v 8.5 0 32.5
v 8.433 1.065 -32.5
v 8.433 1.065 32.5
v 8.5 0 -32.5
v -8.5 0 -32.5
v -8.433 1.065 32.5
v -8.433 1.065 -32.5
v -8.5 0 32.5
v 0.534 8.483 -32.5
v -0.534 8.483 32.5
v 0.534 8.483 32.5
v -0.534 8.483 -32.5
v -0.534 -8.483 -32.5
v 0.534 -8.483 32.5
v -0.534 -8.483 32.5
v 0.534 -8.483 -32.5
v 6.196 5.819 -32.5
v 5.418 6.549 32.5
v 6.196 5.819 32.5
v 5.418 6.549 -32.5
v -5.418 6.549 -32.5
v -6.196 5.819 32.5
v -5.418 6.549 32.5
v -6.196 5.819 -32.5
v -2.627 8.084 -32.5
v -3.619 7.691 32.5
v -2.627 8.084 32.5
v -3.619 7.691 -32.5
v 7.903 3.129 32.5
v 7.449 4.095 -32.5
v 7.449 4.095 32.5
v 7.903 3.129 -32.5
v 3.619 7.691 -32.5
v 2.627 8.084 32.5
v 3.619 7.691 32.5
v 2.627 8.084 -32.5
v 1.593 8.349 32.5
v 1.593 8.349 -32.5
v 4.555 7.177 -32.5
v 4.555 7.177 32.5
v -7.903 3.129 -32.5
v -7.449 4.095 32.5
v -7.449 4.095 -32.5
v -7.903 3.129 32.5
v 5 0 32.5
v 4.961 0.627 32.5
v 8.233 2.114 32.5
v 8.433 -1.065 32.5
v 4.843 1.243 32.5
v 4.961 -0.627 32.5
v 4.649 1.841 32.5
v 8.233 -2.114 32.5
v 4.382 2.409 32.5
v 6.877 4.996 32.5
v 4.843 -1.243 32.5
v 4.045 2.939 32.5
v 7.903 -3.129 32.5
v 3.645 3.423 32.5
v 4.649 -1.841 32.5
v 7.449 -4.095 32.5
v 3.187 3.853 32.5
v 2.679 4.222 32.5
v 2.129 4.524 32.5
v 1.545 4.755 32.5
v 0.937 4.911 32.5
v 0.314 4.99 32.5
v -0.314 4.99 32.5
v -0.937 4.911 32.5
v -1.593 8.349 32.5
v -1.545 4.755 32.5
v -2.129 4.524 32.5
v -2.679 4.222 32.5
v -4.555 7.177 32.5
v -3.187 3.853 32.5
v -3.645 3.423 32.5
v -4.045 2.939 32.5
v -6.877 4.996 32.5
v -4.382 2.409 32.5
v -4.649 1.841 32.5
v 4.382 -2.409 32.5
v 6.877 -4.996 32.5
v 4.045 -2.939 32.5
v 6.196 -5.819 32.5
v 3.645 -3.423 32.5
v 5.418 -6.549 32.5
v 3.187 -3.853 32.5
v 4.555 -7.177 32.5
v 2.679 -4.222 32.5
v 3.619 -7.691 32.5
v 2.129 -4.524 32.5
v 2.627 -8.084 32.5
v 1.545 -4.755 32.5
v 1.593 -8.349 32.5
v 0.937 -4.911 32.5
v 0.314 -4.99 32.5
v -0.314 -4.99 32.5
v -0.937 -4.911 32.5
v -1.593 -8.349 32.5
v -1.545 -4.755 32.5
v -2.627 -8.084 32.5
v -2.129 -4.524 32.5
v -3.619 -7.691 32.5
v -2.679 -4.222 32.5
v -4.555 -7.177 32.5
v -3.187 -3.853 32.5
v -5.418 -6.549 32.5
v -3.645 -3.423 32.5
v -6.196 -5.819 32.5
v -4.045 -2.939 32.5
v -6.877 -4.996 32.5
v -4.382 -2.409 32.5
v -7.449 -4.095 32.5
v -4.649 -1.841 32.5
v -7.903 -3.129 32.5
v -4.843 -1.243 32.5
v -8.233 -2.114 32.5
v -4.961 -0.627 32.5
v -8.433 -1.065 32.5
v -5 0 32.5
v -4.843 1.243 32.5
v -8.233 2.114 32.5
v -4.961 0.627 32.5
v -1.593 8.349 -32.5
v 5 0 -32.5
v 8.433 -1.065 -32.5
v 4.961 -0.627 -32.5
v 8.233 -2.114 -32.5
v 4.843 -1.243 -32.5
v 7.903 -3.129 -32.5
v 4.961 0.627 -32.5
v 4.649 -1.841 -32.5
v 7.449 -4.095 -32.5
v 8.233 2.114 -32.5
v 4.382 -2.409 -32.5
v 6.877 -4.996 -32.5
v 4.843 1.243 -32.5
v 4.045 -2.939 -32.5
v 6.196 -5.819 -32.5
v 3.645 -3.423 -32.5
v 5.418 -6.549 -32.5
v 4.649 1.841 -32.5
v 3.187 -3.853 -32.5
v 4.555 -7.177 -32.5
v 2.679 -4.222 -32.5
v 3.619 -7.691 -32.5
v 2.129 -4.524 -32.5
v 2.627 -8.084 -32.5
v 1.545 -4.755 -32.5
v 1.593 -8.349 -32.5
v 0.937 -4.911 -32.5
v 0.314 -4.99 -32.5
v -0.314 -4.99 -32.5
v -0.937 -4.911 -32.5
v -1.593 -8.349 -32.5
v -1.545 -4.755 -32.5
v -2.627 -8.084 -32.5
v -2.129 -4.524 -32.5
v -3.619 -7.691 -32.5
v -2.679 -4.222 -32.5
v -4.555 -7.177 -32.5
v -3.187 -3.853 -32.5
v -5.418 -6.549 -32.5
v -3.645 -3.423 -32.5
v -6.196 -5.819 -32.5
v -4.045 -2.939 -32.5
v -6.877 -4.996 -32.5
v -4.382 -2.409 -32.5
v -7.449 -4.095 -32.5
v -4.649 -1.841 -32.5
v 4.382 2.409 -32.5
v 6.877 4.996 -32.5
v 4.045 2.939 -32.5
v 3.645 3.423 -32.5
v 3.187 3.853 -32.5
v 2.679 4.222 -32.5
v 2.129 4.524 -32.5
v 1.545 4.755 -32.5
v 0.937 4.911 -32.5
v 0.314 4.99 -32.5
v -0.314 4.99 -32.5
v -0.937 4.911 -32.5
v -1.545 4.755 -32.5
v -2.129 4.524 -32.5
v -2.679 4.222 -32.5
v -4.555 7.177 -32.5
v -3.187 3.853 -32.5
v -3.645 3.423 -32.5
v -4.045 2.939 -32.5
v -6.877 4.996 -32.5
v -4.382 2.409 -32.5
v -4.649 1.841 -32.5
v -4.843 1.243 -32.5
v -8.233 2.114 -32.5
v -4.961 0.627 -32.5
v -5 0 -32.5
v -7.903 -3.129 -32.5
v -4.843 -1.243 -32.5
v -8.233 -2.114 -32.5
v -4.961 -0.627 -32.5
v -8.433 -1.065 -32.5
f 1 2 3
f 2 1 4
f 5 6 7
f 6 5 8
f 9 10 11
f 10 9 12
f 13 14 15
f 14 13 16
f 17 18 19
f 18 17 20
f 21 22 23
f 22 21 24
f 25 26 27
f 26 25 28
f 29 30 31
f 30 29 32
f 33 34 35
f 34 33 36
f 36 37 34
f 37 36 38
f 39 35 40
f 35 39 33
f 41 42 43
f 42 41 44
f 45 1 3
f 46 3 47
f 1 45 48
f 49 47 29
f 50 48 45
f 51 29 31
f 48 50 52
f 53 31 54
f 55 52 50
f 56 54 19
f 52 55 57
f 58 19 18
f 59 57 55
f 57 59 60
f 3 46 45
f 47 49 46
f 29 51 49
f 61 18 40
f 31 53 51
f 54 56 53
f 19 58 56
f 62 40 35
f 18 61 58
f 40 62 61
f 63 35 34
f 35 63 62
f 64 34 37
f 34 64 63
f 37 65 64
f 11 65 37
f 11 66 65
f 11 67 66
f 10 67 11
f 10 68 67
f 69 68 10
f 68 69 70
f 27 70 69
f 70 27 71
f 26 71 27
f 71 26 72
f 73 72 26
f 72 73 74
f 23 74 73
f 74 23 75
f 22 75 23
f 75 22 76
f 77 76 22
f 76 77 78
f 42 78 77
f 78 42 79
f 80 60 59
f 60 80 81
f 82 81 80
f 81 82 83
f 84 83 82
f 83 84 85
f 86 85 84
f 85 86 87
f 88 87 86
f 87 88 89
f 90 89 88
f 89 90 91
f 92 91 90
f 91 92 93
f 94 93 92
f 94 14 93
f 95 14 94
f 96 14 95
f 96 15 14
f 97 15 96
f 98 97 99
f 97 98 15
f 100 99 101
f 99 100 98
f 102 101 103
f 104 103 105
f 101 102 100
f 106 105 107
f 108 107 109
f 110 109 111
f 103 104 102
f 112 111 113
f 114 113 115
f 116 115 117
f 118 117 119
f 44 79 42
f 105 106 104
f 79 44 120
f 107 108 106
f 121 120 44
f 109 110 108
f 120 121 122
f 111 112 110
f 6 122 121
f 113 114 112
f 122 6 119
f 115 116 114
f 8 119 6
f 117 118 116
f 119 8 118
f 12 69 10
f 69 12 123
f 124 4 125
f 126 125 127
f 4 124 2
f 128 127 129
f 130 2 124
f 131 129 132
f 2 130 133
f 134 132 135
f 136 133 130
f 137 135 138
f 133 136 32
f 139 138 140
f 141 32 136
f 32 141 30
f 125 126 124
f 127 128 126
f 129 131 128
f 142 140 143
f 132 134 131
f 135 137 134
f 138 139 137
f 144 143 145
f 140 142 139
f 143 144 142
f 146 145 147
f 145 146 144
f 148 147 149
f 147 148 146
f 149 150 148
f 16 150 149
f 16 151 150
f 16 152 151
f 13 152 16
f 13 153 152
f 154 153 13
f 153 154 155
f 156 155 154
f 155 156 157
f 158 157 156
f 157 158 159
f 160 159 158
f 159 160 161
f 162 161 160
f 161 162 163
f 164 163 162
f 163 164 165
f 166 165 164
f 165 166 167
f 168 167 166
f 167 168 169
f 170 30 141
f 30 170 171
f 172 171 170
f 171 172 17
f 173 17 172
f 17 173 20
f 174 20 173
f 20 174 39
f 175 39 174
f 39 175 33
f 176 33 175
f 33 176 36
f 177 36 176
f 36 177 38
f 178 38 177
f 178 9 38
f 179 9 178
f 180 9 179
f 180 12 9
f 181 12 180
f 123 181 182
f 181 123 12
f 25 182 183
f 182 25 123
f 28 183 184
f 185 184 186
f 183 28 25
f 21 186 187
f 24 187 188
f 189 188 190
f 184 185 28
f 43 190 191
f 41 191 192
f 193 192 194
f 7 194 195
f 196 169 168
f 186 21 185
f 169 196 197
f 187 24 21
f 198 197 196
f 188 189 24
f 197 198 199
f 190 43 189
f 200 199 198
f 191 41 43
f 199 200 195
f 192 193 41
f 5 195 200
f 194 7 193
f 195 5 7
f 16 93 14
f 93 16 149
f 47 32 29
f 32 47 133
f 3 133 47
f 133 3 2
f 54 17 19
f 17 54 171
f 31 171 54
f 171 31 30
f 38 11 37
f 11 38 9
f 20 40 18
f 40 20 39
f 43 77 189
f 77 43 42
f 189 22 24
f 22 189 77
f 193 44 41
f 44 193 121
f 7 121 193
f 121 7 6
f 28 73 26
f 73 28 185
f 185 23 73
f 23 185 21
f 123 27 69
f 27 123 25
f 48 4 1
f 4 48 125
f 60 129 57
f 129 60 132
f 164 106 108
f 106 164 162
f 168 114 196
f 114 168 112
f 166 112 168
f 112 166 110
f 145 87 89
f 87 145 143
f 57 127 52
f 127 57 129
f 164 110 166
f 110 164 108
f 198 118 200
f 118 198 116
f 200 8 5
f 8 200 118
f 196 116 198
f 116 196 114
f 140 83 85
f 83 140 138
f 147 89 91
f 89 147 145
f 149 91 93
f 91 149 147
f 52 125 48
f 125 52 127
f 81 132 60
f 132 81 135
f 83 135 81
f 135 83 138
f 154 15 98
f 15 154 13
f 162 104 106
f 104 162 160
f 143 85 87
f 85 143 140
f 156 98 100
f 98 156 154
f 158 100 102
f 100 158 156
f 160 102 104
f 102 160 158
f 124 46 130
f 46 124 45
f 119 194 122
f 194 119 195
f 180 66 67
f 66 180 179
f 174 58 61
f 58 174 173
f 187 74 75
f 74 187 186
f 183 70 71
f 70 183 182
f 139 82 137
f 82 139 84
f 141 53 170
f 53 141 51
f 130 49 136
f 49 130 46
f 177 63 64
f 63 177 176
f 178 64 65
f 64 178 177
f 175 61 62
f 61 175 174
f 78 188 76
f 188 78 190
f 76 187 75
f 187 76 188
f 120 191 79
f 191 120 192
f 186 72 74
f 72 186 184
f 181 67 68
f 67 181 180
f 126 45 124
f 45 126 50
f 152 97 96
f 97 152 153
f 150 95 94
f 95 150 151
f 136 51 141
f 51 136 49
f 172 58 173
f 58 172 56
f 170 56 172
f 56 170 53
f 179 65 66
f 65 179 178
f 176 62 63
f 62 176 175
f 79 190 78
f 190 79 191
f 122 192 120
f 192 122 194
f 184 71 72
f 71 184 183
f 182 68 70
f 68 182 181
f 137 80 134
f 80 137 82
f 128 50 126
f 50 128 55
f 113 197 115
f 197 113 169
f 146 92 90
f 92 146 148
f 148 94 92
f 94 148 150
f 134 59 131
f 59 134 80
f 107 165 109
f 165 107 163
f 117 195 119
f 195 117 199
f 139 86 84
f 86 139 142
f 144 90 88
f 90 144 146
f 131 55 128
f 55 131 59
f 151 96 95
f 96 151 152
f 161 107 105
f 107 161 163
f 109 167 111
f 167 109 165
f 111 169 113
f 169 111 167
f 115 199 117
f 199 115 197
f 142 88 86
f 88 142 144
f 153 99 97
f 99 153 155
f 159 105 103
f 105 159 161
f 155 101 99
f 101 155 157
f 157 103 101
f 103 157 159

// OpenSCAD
$fn = 50;


difference() {
	union() {
		translate(v = [0, 0, -32.5000000000]) {
			cylinder(h = 65, r = 8.5000000000);
		}
	}
	union() {
		translate(v = [0, 0, -100.0000000000]) {
			cylinder(h = 200, r = 5.0000000000);
		}
	}
}
